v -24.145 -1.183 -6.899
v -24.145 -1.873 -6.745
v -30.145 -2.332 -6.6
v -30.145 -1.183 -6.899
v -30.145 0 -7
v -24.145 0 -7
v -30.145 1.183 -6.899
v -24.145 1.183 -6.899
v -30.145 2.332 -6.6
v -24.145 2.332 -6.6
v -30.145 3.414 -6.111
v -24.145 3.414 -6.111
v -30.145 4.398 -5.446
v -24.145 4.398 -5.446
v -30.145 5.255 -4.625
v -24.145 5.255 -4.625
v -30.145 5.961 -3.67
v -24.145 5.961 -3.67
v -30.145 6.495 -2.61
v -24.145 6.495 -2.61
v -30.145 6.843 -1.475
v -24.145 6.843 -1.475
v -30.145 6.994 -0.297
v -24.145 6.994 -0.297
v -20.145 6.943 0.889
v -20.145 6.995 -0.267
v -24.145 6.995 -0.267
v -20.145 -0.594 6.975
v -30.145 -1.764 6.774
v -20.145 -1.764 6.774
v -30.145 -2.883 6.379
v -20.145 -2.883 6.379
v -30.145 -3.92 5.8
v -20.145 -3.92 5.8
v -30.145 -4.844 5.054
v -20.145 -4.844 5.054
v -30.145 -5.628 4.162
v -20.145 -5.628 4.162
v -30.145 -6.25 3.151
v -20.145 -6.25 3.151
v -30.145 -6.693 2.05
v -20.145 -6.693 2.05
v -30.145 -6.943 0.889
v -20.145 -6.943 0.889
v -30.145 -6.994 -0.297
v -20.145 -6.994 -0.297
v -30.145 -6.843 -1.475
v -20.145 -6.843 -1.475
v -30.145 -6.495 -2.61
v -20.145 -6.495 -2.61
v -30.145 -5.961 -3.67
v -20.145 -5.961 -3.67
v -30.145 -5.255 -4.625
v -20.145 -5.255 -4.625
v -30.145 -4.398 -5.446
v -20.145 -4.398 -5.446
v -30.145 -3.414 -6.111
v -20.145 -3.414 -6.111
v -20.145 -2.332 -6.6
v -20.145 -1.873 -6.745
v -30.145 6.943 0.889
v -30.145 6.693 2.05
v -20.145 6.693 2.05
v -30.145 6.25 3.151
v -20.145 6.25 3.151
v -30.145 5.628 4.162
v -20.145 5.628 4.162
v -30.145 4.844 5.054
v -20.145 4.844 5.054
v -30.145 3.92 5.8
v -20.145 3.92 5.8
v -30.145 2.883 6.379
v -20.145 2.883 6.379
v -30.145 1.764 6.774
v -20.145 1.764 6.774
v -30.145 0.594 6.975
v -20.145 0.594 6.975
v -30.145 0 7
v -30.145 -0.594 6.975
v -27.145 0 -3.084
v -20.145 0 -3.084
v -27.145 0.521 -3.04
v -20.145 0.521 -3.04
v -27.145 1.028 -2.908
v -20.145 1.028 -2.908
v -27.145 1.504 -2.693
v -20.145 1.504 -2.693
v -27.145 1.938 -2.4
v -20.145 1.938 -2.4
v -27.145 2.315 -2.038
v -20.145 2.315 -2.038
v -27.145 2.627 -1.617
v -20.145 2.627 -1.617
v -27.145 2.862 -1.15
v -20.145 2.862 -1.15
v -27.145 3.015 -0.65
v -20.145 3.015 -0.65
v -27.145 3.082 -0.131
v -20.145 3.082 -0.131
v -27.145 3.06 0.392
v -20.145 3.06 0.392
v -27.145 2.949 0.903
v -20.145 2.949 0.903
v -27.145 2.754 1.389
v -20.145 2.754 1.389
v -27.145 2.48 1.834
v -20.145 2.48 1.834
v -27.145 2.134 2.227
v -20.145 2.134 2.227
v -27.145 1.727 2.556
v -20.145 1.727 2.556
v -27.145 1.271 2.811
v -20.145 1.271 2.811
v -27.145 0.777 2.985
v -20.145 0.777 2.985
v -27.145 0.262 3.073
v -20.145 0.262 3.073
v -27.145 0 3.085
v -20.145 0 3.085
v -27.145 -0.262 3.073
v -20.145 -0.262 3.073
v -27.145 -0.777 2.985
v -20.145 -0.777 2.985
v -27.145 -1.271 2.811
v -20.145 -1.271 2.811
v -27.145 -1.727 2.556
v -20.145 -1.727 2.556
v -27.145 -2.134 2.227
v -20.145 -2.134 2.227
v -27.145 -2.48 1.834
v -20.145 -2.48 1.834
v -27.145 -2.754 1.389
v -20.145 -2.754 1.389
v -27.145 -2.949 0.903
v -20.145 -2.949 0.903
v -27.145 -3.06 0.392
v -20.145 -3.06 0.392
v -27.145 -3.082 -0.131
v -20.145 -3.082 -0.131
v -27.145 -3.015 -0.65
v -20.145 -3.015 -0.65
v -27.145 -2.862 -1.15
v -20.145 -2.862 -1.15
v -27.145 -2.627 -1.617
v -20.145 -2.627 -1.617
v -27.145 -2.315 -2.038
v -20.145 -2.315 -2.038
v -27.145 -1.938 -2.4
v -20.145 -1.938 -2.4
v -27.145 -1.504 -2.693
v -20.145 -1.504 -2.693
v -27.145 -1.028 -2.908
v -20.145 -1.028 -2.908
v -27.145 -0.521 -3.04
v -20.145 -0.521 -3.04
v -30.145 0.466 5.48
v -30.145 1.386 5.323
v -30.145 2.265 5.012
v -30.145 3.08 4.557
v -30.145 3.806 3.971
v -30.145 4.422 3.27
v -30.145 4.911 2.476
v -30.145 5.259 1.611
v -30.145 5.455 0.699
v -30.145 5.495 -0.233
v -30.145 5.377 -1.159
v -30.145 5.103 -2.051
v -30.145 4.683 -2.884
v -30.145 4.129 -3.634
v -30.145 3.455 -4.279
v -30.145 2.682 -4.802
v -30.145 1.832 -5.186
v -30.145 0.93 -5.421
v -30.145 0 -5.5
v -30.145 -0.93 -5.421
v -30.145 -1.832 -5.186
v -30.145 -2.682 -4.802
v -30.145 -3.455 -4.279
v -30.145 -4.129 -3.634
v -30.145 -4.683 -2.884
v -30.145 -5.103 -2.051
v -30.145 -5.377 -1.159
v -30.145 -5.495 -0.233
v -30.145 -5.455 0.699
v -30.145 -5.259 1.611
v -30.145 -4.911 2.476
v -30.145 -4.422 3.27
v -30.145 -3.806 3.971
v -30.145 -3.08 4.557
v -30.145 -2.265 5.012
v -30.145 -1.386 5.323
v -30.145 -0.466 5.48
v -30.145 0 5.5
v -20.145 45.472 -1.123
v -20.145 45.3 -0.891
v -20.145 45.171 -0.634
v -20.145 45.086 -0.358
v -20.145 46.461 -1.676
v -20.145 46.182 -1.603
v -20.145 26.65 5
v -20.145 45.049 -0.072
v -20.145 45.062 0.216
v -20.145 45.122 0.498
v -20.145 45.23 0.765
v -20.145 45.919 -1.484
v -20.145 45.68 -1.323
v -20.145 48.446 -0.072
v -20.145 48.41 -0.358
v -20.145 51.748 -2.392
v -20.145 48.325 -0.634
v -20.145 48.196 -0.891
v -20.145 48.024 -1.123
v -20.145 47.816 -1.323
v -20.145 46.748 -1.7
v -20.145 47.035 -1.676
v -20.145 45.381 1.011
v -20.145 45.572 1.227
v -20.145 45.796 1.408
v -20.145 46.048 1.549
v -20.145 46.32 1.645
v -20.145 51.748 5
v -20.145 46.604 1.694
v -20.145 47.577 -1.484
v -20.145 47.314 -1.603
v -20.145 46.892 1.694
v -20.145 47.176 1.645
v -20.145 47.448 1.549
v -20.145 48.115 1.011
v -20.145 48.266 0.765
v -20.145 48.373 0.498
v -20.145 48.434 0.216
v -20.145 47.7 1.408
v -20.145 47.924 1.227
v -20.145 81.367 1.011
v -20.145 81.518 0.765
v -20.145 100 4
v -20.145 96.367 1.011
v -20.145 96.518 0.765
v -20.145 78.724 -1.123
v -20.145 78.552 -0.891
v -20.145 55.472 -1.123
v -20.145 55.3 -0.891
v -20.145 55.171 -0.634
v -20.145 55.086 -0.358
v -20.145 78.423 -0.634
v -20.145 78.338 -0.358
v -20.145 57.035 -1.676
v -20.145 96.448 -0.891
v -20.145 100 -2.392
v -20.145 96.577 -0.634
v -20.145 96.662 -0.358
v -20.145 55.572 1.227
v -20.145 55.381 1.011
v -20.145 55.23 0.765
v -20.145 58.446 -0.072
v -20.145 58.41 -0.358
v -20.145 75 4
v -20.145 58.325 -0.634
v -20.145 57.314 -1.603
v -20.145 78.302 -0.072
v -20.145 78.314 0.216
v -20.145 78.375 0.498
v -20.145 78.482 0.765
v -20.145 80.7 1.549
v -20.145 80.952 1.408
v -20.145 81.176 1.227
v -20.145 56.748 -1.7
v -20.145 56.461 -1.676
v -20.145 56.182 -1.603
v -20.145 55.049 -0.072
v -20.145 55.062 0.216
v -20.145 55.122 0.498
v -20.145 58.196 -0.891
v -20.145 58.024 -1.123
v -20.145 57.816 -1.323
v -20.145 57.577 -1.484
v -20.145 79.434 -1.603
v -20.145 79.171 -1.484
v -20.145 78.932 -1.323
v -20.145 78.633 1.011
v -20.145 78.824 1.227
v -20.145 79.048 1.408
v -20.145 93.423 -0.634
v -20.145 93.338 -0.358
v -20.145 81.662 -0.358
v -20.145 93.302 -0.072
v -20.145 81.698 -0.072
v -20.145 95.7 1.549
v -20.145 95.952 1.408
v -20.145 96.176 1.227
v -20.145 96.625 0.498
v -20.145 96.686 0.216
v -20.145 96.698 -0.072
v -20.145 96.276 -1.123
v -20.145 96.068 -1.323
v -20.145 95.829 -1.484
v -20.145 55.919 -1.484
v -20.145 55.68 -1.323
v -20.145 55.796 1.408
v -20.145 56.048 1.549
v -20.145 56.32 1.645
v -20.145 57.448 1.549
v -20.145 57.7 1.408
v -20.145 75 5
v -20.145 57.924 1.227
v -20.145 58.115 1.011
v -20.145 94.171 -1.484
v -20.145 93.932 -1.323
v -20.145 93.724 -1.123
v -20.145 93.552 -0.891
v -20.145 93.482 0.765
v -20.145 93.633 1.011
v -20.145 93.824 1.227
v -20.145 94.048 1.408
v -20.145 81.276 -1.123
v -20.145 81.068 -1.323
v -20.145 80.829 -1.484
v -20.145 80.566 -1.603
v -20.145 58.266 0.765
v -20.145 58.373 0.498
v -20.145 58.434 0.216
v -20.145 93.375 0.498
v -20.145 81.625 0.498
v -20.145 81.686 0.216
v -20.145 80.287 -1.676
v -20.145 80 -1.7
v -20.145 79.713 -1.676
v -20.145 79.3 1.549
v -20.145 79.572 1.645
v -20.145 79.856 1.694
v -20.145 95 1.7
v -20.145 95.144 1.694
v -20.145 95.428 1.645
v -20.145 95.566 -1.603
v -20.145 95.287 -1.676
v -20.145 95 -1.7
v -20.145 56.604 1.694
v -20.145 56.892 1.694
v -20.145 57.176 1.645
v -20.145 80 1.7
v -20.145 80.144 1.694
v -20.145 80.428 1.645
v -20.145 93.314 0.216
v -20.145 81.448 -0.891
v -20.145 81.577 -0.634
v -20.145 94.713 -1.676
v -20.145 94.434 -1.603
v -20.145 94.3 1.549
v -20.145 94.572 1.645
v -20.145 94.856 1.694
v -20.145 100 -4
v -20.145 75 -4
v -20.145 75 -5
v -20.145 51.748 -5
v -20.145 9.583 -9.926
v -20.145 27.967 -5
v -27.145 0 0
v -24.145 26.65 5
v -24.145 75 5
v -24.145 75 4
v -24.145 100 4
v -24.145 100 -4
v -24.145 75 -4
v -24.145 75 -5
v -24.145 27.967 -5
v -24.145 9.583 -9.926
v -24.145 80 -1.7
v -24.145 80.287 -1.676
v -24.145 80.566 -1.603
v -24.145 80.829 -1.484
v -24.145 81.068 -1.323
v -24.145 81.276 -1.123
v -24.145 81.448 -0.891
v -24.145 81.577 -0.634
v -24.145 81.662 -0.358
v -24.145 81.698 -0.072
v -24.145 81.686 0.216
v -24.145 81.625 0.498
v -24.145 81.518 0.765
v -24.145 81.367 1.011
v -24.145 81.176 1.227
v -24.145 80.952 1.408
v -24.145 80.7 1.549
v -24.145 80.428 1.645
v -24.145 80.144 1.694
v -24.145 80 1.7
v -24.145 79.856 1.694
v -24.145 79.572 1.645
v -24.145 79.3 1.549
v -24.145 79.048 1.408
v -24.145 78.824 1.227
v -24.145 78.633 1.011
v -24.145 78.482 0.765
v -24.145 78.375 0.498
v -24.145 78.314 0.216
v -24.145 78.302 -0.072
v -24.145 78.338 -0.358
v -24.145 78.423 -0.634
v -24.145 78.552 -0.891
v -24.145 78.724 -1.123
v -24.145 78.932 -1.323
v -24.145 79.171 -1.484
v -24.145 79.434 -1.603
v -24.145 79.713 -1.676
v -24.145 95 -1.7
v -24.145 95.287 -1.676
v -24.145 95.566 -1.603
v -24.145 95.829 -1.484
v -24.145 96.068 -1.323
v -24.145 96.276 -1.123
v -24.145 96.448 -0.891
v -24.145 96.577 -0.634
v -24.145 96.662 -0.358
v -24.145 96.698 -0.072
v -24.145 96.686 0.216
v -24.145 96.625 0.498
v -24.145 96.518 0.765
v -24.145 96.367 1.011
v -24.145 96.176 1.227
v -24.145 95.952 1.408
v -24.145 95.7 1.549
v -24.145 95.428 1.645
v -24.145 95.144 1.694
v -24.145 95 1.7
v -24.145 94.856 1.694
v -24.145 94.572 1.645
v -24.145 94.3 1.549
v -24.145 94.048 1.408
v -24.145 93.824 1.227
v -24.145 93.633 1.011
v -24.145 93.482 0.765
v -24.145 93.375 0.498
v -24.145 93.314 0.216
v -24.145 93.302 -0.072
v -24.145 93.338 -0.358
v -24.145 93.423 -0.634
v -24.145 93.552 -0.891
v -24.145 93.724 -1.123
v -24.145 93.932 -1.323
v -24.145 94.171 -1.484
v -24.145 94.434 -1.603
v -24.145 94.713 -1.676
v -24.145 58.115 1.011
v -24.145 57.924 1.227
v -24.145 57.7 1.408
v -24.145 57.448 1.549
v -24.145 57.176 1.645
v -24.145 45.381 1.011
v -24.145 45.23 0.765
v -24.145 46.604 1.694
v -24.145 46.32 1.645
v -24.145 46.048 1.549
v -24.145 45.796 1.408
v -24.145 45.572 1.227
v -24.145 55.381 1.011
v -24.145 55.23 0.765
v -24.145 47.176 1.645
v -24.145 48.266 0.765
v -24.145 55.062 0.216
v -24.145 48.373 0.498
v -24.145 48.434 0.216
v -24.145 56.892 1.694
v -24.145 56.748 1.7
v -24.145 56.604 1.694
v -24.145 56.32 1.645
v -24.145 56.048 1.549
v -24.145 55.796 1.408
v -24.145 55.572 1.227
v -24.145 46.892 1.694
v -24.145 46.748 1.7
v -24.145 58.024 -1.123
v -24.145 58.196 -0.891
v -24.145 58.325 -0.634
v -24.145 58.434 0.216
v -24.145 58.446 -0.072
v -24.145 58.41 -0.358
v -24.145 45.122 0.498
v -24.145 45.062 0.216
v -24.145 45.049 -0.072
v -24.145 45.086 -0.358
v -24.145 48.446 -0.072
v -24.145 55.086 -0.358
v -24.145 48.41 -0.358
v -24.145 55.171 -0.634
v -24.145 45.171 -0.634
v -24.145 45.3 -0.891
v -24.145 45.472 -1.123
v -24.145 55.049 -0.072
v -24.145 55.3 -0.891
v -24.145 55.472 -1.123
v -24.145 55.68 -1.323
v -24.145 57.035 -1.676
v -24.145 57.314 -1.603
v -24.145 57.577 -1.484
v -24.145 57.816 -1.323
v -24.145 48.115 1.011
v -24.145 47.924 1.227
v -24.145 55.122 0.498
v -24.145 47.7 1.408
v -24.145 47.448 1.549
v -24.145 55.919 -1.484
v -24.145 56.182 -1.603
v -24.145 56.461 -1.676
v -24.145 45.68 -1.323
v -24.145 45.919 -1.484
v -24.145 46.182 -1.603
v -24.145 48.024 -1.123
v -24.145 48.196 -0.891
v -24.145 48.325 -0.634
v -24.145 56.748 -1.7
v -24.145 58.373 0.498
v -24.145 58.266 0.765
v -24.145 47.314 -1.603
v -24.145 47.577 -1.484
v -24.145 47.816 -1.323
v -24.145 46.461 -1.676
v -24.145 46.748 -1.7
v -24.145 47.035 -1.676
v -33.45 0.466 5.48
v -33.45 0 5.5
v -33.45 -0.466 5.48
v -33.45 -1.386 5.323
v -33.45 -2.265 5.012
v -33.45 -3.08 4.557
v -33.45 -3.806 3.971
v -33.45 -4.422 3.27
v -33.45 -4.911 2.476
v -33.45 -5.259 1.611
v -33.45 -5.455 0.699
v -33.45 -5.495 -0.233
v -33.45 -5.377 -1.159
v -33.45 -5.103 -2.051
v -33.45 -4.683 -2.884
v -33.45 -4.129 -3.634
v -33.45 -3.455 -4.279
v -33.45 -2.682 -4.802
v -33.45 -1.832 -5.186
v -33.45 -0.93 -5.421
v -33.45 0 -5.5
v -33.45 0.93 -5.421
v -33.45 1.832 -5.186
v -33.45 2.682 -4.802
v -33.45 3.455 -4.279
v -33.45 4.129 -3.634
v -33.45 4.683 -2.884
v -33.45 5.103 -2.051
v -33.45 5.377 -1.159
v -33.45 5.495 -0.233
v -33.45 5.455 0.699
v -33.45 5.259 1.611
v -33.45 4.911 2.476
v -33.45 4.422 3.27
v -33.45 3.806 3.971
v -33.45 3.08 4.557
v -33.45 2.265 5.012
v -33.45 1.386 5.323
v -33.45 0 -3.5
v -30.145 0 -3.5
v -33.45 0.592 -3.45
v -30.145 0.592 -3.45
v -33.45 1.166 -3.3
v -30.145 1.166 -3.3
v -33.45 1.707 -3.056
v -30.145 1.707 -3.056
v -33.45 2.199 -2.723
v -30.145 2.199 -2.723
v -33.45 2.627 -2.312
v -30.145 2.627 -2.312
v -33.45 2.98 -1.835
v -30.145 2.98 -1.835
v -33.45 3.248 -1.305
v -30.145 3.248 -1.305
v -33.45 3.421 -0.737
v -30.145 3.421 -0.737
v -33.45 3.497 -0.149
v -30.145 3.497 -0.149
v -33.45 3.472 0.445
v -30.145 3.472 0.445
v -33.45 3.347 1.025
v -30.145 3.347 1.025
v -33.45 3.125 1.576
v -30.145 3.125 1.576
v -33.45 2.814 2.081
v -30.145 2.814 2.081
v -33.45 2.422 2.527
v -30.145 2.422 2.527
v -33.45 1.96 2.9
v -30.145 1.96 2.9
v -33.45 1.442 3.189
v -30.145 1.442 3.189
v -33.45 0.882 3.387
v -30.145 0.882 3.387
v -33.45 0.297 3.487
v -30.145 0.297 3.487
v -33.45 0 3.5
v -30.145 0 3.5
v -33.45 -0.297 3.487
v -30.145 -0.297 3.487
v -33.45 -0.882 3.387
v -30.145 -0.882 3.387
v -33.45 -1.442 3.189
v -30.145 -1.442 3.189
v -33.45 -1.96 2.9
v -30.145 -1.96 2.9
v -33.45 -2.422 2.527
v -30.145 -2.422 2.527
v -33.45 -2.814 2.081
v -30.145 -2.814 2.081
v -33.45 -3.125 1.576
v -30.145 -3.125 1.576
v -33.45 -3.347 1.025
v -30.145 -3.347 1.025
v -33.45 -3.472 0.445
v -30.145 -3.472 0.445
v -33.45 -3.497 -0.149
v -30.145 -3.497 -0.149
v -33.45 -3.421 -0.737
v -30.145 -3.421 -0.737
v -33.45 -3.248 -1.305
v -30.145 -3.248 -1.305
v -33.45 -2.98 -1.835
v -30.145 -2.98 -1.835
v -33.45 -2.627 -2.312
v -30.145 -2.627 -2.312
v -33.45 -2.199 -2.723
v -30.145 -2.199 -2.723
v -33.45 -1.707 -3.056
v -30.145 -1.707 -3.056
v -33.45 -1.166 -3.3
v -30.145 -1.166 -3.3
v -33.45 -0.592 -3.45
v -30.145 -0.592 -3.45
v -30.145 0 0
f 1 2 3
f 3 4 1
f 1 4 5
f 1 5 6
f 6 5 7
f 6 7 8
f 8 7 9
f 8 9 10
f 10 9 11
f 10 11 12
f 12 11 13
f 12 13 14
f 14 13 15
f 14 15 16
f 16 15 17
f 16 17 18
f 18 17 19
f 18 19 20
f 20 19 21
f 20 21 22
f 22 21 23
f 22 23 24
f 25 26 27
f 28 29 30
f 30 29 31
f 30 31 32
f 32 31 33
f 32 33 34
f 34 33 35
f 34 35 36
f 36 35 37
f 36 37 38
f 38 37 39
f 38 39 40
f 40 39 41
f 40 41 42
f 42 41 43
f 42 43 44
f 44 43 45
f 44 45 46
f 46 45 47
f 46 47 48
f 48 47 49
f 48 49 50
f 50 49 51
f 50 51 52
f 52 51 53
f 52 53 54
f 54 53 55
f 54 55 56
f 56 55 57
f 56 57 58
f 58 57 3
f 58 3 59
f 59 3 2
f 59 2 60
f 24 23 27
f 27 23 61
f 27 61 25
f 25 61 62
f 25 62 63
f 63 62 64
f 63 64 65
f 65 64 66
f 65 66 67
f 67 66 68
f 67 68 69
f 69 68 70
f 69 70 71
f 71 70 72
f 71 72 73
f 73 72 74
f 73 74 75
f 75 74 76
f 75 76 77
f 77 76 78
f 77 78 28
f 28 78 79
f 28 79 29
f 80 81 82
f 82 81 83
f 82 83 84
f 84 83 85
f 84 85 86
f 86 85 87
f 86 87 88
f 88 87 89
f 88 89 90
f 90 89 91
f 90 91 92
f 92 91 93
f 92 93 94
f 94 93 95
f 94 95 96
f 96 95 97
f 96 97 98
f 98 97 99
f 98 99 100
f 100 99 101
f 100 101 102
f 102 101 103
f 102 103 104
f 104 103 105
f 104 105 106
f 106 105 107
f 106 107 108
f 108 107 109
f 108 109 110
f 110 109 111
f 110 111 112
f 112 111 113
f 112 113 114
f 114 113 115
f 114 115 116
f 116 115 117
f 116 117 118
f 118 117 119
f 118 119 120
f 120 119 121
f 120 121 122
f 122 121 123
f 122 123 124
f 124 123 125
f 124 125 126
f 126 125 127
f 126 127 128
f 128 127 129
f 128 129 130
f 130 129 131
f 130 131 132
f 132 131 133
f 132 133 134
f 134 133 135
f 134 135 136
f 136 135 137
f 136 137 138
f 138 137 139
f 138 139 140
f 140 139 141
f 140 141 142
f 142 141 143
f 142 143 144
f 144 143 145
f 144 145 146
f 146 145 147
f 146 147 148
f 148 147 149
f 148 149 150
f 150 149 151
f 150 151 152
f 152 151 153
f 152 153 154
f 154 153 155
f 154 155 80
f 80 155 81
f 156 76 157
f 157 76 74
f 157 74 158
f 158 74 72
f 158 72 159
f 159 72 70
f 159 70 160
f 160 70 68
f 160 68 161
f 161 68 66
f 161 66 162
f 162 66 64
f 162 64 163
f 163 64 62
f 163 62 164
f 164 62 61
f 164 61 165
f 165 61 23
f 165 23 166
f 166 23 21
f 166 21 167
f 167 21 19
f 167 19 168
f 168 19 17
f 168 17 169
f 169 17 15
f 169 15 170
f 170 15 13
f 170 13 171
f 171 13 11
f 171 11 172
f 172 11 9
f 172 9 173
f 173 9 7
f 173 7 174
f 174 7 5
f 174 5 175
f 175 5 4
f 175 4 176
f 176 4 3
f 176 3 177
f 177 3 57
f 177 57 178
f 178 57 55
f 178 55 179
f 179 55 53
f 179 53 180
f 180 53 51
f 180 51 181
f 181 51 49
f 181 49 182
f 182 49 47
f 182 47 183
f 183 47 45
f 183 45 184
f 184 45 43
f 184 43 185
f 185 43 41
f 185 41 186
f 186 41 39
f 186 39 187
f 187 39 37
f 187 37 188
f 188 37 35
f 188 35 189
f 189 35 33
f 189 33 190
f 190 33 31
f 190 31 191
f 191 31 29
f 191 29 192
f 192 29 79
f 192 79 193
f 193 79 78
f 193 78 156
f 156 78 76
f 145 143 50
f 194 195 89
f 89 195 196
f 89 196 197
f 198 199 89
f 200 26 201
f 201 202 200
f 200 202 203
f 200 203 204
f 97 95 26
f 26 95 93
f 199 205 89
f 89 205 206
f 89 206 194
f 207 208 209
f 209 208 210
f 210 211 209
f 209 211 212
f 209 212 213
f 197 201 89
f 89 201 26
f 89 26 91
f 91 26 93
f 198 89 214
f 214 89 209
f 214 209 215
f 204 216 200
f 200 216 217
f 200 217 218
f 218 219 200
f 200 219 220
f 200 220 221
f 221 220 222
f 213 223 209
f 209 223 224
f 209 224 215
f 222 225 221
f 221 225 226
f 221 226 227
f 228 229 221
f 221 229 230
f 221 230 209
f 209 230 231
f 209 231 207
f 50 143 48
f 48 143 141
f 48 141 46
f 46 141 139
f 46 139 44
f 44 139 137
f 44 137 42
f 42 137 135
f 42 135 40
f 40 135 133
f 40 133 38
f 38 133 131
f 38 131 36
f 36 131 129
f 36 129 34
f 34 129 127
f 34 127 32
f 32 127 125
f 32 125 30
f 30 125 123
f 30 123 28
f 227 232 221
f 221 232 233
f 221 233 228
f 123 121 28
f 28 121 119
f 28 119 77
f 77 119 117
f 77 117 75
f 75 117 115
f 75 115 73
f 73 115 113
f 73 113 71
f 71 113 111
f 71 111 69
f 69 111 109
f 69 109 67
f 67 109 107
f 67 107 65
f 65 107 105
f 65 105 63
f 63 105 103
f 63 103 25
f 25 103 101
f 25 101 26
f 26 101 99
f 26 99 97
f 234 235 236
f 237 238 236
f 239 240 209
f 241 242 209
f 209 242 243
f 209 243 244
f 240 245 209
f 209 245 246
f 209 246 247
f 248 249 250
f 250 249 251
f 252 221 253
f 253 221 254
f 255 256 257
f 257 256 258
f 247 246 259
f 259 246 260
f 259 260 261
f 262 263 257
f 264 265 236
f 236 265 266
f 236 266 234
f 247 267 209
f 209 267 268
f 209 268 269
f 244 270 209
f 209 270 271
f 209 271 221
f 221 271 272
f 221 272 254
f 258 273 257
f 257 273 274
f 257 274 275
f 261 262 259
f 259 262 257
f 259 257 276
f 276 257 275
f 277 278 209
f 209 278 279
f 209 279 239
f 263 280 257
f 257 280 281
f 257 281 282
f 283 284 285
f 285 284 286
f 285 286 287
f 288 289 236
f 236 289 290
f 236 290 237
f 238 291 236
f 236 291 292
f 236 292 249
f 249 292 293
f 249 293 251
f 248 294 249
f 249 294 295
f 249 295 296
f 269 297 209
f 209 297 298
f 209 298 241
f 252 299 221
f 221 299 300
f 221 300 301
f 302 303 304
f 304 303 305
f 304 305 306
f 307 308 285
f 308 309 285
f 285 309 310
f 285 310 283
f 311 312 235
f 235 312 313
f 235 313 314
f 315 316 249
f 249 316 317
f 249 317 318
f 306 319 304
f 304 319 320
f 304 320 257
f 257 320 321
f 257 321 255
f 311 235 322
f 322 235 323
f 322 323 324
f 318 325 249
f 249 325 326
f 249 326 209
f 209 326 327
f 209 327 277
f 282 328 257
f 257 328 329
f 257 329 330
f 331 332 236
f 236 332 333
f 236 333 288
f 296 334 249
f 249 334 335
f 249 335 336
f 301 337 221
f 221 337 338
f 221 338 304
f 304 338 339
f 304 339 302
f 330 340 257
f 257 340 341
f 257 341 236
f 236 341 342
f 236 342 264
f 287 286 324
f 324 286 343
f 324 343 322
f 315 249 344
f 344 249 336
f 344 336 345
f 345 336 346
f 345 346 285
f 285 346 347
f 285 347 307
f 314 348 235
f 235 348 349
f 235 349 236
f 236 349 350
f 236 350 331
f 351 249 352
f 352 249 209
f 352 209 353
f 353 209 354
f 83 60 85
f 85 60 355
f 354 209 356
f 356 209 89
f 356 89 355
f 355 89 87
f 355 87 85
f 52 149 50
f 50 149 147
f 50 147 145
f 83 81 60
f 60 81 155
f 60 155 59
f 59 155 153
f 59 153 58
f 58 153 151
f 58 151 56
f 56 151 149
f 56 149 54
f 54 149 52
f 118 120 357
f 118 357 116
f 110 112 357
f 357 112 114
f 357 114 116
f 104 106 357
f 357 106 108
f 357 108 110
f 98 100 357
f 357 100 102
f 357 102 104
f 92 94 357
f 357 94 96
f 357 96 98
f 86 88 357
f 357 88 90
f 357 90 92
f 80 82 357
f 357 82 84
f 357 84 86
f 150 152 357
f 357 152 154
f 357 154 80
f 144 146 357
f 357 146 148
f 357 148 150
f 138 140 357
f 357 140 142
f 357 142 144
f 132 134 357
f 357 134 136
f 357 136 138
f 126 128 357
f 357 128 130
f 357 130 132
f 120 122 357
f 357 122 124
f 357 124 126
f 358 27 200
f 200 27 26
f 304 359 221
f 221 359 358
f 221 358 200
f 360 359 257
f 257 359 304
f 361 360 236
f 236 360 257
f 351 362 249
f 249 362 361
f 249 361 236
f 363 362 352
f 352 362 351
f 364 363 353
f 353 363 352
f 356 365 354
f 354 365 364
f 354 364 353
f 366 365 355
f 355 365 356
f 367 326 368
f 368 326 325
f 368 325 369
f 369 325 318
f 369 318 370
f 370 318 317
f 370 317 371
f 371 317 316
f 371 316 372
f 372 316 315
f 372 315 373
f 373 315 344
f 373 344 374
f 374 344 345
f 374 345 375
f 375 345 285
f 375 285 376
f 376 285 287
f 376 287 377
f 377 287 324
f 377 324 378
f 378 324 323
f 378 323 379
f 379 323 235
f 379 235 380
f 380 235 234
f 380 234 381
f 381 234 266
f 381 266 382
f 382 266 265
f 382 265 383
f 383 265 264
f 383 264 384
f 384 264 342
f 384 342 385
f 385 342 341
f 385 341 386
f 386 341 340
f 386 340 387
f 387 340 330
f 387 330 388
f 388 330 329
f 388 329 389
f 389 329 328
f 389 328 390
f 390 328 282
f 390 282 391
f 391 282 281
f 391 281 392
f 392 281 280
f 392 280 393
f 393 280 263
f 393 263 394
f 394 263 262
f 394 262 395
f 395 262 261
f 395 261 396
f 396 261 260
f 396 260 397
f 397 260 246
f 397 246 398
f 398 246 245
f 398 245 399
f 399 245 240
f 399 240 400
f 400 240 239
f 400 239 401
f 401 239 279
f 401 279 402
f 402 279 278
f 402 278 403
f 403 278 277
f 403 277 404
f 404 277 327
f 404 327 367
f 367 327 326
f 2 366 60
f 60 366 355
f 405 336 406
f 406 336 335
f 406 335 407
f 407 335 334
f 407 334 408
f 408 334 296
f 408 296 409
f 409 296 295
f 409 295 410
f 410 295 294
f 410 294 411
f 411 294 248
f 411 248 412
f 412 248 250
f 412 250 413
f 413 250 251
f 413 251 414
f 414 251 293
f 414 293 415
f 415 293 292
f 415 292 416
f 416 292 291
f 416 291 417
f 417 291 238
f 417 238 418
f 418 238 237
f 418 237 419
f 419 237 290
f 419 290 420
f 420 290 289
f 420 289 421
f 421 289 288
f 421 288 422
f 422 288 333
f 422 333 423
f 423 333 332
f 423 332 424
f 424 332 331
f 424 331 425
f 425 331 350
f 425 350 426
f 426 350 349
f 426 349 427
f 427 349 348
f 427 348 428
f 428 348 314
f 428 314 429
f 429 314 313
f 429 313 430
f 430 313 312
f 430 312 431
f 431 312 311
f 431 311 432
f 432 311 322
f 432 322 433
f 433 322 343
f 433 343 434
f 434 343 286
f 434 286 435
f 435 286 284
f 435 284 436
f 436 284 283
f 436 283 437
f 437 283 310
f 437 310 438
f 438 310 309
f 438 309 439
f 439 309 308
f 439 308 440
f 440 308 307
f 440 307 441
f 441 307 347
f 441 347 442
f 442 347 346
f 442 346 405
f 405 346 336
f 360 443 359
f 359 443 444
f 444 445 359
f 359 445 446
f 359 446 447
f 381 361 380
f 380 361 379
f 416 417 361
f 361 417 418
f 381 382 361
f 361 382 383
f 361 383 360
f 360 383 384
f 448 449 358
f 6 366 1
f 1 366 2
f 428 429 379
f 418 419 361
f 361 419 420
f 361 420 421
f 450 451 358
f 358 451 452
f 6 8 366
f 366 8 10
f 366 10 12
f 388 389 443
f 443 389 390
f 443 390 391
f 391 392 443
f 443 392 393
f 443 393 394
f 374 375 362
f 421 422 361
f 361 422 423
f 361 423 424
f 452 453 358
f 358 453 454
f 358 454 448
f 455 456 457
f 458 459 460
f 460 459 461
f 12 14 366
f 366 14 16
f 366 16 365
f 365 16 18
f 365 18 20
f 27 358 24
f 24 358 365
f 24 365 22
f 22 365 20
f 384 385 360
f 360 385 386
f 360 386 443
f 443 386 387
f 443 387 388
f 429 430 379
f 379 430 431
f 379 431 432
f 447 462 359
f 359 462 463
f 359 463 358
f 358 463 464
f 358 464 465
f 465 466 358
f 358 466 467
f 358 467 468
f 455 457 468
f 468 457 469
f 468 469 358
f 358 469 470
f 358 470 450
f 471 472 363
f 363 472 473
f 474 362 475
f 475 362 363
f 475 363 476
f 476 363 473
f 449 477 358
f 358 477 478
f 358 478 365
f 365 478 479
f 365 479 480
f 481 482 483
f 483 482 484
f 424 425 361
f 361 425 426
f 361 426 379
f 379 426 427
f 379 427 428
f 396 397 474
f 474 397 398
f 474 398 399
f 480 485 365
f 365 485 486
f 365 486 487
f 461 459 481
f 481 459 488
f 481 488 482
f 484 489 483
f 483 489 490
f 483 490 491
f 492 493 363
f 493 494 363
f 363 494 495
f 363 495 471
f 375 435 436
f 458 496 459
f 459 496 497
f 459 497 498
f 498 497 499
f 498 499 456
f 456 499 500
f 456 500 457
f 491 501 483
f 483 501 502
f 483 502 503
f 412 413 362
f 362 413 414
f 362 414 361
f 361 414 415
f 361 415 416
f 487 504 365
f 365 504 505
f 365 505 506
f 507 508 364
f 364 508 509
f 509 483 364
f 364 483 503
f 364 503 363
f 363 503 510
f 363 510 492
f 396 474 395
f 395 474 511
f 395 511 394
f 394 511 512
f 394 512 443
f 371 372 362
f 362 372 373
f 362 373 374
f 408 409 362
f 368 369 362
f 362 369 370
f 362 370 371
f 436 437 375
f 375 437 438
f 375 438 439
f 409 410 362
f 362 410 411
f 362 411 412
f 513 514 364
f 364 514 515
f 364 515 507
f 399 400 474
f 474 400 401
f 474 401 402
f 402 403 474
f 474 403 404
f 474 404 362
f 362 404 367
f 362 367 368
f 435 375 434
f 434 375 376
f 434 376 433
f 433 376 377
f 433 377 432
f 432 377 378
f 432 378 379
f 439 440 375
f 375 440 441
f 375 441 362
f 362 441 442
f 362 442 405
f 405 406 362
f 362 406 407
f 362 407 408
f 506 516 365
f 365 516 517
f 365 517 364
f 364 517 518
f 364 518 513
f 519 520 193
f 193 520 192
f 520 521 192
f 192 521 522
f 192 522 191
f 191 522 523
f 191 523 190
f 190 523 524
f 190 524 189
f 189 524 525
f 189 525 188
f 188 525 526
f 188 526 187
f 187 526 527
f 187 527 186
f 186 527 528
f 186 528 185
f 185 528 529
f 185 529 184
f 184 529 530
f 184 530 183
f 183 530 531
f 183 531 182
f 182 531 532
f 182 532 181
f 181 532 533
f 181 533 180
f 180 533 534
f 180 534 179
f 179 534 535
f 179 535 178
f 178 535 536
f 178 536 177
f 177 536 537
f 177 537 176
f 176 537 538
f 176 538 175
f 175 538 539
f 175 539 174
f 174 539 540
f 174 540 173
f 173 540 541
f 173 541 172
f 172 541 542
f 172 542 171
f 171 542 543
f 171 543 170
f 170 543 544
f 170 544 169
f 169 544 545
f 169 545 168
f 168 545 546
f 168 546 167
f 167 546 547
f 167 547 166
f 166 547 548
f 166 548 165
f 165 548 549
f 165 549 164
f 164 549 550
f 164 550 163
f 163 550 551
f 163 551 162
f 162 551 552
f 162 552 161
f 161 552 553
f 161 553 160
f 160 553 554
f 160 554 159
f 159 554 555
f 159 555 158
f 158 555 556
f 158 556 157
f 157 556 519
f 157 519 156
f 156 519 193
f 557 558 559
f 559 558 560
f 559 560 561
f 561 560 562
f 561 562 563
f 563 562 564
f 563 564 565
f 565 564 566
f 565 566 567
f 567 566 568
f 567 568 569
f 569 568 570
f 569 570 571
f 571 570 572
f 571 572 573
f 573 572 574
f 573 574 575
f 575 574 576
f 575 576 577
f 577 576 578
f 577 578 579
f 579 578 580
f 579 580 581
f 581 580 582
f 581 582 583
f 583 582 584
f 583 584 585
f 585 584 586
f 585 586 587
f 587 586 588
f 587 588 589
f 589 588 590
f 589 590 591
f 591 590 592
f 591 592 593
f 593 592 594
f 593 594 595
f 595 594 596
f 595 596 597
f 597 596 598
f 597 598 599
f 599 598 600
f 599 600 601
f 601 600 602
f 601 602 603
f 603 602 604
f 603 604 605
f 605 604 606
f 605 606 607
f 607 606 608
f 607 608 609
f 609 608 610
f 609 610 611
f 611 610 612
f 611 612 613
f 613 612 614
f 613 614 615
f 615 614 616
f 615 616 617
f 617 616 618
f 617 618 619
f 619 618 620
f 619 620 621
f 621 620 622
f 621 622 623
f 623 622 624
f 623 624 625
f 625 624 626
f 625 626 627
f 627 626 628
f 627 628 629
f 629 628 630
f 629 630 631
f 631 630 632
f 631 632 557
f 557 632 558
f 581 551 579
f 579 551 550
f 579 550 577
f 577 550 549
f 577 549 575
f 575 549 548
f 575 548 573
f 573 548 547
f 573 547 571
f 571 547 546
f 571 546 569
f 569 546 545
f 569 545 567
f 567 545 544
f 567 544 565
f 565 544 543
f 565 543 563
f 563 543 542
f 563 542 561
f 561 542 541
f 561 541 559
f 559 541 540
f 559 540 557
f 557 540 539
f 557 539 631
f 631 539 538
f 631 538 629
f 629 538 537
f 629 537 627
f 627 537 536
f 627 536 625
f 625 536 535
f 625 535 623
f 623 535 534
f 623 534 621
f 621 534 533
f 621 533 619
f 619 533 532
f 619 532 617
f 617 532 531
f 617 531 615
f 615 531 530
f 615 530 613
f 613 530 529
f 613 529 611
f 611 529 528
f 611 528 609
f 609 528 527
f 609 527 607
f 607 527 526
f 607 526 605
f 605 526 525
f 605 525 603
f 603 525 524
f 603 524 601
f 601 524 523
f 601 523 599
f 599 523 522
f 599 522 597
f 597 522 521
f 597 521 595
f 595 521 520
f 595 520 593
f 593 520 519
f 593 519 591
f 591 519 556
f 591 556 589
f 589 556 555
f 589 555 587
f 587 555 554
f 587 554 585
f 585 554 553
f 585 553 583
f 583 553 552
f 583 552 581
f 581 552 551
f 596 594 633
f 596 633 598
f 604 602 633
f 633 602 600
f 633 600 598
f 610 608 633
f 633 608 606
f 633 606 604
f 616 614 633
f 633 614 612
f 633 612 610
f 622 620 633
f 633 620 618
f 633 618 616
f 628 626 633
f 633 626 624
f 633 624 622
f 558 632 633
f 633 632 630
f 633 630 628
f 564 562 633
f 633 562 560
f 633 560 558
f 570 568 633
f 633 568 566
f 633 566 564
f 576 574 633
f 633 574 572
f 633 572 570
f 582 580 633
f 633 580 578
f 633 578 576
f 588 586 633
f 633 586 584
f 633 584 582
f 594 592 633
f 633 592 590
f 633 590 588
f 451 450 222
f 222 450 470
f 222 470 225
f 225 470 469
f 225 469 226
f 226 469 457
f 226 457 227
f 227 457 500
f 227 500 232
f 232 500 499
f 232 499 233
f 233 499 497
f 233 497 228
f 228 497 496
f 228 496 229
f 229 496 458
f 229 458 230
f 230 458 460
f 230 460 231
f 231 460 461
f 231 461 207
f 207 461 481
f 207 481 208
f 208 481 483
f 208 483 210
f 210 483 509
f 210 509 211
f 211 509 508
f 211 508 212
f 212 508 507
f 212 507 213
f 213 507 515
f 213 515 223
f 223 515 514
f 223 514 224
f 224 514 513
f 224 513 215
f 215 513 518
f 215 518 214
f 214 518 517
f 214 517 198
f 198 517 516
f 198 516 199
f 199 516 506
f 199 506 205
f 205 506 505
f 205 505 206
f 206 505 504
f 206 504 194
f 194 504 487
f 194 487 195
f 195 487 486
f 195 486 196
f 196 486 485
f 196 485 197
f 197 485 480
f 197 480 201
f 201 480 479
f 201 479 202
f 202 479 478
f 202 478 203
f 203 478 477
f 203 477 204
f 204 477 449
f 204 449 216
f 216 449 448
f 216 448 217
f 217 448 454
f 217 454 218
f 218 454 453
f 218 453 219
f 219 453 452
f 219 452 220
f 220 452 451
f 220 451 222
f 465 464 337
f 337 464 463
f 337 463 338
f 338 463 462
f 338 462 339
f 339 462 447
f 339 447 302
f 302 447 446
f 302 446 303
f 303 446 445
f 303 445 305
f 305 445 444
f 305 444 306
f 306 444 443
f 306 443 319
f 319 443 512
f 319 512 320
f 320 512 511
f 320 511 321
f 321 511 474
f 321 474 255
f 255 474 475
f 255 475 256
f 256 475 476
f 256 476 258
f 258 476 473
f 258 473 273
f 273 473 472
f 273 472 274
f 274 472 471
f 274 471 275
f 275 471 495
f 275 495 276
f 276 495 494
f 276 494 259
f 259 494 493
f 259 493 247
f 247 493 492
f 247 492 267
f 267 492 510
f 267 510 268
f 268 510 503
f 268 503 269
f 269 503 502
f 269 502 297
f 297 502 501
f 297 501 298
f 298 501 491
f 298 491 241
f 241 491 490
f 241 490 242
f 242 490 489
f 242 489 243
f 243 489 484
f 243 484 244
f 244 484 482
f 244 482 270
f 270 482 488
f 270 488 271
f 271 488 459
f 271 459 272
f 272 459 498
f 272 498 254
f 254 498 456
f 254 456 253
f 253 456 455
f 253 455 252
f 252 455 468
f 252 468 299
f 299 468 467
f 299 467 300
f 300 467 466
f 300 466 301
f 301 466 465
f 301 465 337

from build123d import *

# Parameters (mm, degrees)
SKETCH1_R           = 7
SKETCH1_R_2         = 3.0845
BOSS_EXTRUDE1_DEPTH = 10
BOSS_EXTRUDE2_START = 7
SKETCH1_3_R         = 7
BOSS_EXTRUDE2_DEPTH = 3
SKETCH1_5_R         = 1.7
BOSS_EXTRUDE3_DEPTH = 4
SKETCH2_R           = 5.5
SKETCH2_R_2         = 3.5
BOSS_EXTRUDE4_DEPTH = 3.305
SKETCH3_R           = 1.7
CUT_EXTRUDE1_DEPTH  = 4


with BuildPart() as part:
    # Sketch1 → Boss-Extrude1 (new body)
    with BuildSketch(Plane.ZY.offset(20.145)):
        Circle(SKETCH1_R)
        Circle(SKETCH1_R_2, mode=Mode.SUBTRACT)
    extrude(amount=BOSS_EXTRUDE1_DEPTH)

    # Sketch1<3> → Boss-Extrude2 (add)
    with BuildSketch(Plane.ZY.offset(20.145).offset(BOSS_EXTRUDE2_START)):
        Circle(SKETCH1_3_R)
    extrude(amount=BOSS_EXTRUDE2_DEPTH)

    # Sketch1<5> → Boss-Extrude3 (add)
    with BuildSketch(Plane.ZY.offset(20.145)):
        with BuildLine():
            Line((-5, 75), (-5, 27.967015644))
            Line((-5, 27.967015644), (-9.925953163, 9.583108165))
            Line((-9.925953163, 9.583108165), (-6.744787083, -1.872924772))
            ThreePointArc((-6.744787083, -1.872924772), (-5.652422268, 4.129179399), (-0.2666949, 6.994917714))
            Line((-0.2666949, 6.994917714), (5, 26.650490668))
            Line((5, 26.650490668), (5, 75))
            Line((5, 75), (4, 75))
            Line((4, 75), (4, 100))
            Line((4, 100), (-4, 100))
            Line((-4, 100), (-4, 75))
            Line((-4, 75), (-5, 75))
        make_face()
        with Locations((0, 80)):
            Circle(SKETCH1_5_R, mode=Mode.SUBTRACT)
        with Locations((0, 95)):
            Circle(SKETCH1_5_R, mode=Mode.SUBTRACT)
    extrude(amount=BOSS_EXTRUDE3_DEPTH)

    # Sketch2 → Boss-Extrude4 (add)
    with BuildSketch(Plane.ZY.offset(30.145)):
        Circle(SKETCH2_R)
        Circle(SKETCH2_R_2, mode=Mode.SUBTRACT)
    extrude(amount=BOSS_EXTRUDE4_DEPTH)

    # Sketch3 → Cut-Extrude1 (cut)
    with BuildSketch(Plane(origin=(-20.145, 0, 0), x_dir=(0, 0, -1), z_dir=(1, 0, 0))):
        with Locations((0, 46.747966087)):
            Circle(SKETCH3_R)
        with Locations((0, 56.747966087)):
            Circle(SKETCH3_R)
    extrude(amount=-CUT_EXTRUDE1_DEPTH, mode=Mode.SUBTRACT)


solid = part.part
